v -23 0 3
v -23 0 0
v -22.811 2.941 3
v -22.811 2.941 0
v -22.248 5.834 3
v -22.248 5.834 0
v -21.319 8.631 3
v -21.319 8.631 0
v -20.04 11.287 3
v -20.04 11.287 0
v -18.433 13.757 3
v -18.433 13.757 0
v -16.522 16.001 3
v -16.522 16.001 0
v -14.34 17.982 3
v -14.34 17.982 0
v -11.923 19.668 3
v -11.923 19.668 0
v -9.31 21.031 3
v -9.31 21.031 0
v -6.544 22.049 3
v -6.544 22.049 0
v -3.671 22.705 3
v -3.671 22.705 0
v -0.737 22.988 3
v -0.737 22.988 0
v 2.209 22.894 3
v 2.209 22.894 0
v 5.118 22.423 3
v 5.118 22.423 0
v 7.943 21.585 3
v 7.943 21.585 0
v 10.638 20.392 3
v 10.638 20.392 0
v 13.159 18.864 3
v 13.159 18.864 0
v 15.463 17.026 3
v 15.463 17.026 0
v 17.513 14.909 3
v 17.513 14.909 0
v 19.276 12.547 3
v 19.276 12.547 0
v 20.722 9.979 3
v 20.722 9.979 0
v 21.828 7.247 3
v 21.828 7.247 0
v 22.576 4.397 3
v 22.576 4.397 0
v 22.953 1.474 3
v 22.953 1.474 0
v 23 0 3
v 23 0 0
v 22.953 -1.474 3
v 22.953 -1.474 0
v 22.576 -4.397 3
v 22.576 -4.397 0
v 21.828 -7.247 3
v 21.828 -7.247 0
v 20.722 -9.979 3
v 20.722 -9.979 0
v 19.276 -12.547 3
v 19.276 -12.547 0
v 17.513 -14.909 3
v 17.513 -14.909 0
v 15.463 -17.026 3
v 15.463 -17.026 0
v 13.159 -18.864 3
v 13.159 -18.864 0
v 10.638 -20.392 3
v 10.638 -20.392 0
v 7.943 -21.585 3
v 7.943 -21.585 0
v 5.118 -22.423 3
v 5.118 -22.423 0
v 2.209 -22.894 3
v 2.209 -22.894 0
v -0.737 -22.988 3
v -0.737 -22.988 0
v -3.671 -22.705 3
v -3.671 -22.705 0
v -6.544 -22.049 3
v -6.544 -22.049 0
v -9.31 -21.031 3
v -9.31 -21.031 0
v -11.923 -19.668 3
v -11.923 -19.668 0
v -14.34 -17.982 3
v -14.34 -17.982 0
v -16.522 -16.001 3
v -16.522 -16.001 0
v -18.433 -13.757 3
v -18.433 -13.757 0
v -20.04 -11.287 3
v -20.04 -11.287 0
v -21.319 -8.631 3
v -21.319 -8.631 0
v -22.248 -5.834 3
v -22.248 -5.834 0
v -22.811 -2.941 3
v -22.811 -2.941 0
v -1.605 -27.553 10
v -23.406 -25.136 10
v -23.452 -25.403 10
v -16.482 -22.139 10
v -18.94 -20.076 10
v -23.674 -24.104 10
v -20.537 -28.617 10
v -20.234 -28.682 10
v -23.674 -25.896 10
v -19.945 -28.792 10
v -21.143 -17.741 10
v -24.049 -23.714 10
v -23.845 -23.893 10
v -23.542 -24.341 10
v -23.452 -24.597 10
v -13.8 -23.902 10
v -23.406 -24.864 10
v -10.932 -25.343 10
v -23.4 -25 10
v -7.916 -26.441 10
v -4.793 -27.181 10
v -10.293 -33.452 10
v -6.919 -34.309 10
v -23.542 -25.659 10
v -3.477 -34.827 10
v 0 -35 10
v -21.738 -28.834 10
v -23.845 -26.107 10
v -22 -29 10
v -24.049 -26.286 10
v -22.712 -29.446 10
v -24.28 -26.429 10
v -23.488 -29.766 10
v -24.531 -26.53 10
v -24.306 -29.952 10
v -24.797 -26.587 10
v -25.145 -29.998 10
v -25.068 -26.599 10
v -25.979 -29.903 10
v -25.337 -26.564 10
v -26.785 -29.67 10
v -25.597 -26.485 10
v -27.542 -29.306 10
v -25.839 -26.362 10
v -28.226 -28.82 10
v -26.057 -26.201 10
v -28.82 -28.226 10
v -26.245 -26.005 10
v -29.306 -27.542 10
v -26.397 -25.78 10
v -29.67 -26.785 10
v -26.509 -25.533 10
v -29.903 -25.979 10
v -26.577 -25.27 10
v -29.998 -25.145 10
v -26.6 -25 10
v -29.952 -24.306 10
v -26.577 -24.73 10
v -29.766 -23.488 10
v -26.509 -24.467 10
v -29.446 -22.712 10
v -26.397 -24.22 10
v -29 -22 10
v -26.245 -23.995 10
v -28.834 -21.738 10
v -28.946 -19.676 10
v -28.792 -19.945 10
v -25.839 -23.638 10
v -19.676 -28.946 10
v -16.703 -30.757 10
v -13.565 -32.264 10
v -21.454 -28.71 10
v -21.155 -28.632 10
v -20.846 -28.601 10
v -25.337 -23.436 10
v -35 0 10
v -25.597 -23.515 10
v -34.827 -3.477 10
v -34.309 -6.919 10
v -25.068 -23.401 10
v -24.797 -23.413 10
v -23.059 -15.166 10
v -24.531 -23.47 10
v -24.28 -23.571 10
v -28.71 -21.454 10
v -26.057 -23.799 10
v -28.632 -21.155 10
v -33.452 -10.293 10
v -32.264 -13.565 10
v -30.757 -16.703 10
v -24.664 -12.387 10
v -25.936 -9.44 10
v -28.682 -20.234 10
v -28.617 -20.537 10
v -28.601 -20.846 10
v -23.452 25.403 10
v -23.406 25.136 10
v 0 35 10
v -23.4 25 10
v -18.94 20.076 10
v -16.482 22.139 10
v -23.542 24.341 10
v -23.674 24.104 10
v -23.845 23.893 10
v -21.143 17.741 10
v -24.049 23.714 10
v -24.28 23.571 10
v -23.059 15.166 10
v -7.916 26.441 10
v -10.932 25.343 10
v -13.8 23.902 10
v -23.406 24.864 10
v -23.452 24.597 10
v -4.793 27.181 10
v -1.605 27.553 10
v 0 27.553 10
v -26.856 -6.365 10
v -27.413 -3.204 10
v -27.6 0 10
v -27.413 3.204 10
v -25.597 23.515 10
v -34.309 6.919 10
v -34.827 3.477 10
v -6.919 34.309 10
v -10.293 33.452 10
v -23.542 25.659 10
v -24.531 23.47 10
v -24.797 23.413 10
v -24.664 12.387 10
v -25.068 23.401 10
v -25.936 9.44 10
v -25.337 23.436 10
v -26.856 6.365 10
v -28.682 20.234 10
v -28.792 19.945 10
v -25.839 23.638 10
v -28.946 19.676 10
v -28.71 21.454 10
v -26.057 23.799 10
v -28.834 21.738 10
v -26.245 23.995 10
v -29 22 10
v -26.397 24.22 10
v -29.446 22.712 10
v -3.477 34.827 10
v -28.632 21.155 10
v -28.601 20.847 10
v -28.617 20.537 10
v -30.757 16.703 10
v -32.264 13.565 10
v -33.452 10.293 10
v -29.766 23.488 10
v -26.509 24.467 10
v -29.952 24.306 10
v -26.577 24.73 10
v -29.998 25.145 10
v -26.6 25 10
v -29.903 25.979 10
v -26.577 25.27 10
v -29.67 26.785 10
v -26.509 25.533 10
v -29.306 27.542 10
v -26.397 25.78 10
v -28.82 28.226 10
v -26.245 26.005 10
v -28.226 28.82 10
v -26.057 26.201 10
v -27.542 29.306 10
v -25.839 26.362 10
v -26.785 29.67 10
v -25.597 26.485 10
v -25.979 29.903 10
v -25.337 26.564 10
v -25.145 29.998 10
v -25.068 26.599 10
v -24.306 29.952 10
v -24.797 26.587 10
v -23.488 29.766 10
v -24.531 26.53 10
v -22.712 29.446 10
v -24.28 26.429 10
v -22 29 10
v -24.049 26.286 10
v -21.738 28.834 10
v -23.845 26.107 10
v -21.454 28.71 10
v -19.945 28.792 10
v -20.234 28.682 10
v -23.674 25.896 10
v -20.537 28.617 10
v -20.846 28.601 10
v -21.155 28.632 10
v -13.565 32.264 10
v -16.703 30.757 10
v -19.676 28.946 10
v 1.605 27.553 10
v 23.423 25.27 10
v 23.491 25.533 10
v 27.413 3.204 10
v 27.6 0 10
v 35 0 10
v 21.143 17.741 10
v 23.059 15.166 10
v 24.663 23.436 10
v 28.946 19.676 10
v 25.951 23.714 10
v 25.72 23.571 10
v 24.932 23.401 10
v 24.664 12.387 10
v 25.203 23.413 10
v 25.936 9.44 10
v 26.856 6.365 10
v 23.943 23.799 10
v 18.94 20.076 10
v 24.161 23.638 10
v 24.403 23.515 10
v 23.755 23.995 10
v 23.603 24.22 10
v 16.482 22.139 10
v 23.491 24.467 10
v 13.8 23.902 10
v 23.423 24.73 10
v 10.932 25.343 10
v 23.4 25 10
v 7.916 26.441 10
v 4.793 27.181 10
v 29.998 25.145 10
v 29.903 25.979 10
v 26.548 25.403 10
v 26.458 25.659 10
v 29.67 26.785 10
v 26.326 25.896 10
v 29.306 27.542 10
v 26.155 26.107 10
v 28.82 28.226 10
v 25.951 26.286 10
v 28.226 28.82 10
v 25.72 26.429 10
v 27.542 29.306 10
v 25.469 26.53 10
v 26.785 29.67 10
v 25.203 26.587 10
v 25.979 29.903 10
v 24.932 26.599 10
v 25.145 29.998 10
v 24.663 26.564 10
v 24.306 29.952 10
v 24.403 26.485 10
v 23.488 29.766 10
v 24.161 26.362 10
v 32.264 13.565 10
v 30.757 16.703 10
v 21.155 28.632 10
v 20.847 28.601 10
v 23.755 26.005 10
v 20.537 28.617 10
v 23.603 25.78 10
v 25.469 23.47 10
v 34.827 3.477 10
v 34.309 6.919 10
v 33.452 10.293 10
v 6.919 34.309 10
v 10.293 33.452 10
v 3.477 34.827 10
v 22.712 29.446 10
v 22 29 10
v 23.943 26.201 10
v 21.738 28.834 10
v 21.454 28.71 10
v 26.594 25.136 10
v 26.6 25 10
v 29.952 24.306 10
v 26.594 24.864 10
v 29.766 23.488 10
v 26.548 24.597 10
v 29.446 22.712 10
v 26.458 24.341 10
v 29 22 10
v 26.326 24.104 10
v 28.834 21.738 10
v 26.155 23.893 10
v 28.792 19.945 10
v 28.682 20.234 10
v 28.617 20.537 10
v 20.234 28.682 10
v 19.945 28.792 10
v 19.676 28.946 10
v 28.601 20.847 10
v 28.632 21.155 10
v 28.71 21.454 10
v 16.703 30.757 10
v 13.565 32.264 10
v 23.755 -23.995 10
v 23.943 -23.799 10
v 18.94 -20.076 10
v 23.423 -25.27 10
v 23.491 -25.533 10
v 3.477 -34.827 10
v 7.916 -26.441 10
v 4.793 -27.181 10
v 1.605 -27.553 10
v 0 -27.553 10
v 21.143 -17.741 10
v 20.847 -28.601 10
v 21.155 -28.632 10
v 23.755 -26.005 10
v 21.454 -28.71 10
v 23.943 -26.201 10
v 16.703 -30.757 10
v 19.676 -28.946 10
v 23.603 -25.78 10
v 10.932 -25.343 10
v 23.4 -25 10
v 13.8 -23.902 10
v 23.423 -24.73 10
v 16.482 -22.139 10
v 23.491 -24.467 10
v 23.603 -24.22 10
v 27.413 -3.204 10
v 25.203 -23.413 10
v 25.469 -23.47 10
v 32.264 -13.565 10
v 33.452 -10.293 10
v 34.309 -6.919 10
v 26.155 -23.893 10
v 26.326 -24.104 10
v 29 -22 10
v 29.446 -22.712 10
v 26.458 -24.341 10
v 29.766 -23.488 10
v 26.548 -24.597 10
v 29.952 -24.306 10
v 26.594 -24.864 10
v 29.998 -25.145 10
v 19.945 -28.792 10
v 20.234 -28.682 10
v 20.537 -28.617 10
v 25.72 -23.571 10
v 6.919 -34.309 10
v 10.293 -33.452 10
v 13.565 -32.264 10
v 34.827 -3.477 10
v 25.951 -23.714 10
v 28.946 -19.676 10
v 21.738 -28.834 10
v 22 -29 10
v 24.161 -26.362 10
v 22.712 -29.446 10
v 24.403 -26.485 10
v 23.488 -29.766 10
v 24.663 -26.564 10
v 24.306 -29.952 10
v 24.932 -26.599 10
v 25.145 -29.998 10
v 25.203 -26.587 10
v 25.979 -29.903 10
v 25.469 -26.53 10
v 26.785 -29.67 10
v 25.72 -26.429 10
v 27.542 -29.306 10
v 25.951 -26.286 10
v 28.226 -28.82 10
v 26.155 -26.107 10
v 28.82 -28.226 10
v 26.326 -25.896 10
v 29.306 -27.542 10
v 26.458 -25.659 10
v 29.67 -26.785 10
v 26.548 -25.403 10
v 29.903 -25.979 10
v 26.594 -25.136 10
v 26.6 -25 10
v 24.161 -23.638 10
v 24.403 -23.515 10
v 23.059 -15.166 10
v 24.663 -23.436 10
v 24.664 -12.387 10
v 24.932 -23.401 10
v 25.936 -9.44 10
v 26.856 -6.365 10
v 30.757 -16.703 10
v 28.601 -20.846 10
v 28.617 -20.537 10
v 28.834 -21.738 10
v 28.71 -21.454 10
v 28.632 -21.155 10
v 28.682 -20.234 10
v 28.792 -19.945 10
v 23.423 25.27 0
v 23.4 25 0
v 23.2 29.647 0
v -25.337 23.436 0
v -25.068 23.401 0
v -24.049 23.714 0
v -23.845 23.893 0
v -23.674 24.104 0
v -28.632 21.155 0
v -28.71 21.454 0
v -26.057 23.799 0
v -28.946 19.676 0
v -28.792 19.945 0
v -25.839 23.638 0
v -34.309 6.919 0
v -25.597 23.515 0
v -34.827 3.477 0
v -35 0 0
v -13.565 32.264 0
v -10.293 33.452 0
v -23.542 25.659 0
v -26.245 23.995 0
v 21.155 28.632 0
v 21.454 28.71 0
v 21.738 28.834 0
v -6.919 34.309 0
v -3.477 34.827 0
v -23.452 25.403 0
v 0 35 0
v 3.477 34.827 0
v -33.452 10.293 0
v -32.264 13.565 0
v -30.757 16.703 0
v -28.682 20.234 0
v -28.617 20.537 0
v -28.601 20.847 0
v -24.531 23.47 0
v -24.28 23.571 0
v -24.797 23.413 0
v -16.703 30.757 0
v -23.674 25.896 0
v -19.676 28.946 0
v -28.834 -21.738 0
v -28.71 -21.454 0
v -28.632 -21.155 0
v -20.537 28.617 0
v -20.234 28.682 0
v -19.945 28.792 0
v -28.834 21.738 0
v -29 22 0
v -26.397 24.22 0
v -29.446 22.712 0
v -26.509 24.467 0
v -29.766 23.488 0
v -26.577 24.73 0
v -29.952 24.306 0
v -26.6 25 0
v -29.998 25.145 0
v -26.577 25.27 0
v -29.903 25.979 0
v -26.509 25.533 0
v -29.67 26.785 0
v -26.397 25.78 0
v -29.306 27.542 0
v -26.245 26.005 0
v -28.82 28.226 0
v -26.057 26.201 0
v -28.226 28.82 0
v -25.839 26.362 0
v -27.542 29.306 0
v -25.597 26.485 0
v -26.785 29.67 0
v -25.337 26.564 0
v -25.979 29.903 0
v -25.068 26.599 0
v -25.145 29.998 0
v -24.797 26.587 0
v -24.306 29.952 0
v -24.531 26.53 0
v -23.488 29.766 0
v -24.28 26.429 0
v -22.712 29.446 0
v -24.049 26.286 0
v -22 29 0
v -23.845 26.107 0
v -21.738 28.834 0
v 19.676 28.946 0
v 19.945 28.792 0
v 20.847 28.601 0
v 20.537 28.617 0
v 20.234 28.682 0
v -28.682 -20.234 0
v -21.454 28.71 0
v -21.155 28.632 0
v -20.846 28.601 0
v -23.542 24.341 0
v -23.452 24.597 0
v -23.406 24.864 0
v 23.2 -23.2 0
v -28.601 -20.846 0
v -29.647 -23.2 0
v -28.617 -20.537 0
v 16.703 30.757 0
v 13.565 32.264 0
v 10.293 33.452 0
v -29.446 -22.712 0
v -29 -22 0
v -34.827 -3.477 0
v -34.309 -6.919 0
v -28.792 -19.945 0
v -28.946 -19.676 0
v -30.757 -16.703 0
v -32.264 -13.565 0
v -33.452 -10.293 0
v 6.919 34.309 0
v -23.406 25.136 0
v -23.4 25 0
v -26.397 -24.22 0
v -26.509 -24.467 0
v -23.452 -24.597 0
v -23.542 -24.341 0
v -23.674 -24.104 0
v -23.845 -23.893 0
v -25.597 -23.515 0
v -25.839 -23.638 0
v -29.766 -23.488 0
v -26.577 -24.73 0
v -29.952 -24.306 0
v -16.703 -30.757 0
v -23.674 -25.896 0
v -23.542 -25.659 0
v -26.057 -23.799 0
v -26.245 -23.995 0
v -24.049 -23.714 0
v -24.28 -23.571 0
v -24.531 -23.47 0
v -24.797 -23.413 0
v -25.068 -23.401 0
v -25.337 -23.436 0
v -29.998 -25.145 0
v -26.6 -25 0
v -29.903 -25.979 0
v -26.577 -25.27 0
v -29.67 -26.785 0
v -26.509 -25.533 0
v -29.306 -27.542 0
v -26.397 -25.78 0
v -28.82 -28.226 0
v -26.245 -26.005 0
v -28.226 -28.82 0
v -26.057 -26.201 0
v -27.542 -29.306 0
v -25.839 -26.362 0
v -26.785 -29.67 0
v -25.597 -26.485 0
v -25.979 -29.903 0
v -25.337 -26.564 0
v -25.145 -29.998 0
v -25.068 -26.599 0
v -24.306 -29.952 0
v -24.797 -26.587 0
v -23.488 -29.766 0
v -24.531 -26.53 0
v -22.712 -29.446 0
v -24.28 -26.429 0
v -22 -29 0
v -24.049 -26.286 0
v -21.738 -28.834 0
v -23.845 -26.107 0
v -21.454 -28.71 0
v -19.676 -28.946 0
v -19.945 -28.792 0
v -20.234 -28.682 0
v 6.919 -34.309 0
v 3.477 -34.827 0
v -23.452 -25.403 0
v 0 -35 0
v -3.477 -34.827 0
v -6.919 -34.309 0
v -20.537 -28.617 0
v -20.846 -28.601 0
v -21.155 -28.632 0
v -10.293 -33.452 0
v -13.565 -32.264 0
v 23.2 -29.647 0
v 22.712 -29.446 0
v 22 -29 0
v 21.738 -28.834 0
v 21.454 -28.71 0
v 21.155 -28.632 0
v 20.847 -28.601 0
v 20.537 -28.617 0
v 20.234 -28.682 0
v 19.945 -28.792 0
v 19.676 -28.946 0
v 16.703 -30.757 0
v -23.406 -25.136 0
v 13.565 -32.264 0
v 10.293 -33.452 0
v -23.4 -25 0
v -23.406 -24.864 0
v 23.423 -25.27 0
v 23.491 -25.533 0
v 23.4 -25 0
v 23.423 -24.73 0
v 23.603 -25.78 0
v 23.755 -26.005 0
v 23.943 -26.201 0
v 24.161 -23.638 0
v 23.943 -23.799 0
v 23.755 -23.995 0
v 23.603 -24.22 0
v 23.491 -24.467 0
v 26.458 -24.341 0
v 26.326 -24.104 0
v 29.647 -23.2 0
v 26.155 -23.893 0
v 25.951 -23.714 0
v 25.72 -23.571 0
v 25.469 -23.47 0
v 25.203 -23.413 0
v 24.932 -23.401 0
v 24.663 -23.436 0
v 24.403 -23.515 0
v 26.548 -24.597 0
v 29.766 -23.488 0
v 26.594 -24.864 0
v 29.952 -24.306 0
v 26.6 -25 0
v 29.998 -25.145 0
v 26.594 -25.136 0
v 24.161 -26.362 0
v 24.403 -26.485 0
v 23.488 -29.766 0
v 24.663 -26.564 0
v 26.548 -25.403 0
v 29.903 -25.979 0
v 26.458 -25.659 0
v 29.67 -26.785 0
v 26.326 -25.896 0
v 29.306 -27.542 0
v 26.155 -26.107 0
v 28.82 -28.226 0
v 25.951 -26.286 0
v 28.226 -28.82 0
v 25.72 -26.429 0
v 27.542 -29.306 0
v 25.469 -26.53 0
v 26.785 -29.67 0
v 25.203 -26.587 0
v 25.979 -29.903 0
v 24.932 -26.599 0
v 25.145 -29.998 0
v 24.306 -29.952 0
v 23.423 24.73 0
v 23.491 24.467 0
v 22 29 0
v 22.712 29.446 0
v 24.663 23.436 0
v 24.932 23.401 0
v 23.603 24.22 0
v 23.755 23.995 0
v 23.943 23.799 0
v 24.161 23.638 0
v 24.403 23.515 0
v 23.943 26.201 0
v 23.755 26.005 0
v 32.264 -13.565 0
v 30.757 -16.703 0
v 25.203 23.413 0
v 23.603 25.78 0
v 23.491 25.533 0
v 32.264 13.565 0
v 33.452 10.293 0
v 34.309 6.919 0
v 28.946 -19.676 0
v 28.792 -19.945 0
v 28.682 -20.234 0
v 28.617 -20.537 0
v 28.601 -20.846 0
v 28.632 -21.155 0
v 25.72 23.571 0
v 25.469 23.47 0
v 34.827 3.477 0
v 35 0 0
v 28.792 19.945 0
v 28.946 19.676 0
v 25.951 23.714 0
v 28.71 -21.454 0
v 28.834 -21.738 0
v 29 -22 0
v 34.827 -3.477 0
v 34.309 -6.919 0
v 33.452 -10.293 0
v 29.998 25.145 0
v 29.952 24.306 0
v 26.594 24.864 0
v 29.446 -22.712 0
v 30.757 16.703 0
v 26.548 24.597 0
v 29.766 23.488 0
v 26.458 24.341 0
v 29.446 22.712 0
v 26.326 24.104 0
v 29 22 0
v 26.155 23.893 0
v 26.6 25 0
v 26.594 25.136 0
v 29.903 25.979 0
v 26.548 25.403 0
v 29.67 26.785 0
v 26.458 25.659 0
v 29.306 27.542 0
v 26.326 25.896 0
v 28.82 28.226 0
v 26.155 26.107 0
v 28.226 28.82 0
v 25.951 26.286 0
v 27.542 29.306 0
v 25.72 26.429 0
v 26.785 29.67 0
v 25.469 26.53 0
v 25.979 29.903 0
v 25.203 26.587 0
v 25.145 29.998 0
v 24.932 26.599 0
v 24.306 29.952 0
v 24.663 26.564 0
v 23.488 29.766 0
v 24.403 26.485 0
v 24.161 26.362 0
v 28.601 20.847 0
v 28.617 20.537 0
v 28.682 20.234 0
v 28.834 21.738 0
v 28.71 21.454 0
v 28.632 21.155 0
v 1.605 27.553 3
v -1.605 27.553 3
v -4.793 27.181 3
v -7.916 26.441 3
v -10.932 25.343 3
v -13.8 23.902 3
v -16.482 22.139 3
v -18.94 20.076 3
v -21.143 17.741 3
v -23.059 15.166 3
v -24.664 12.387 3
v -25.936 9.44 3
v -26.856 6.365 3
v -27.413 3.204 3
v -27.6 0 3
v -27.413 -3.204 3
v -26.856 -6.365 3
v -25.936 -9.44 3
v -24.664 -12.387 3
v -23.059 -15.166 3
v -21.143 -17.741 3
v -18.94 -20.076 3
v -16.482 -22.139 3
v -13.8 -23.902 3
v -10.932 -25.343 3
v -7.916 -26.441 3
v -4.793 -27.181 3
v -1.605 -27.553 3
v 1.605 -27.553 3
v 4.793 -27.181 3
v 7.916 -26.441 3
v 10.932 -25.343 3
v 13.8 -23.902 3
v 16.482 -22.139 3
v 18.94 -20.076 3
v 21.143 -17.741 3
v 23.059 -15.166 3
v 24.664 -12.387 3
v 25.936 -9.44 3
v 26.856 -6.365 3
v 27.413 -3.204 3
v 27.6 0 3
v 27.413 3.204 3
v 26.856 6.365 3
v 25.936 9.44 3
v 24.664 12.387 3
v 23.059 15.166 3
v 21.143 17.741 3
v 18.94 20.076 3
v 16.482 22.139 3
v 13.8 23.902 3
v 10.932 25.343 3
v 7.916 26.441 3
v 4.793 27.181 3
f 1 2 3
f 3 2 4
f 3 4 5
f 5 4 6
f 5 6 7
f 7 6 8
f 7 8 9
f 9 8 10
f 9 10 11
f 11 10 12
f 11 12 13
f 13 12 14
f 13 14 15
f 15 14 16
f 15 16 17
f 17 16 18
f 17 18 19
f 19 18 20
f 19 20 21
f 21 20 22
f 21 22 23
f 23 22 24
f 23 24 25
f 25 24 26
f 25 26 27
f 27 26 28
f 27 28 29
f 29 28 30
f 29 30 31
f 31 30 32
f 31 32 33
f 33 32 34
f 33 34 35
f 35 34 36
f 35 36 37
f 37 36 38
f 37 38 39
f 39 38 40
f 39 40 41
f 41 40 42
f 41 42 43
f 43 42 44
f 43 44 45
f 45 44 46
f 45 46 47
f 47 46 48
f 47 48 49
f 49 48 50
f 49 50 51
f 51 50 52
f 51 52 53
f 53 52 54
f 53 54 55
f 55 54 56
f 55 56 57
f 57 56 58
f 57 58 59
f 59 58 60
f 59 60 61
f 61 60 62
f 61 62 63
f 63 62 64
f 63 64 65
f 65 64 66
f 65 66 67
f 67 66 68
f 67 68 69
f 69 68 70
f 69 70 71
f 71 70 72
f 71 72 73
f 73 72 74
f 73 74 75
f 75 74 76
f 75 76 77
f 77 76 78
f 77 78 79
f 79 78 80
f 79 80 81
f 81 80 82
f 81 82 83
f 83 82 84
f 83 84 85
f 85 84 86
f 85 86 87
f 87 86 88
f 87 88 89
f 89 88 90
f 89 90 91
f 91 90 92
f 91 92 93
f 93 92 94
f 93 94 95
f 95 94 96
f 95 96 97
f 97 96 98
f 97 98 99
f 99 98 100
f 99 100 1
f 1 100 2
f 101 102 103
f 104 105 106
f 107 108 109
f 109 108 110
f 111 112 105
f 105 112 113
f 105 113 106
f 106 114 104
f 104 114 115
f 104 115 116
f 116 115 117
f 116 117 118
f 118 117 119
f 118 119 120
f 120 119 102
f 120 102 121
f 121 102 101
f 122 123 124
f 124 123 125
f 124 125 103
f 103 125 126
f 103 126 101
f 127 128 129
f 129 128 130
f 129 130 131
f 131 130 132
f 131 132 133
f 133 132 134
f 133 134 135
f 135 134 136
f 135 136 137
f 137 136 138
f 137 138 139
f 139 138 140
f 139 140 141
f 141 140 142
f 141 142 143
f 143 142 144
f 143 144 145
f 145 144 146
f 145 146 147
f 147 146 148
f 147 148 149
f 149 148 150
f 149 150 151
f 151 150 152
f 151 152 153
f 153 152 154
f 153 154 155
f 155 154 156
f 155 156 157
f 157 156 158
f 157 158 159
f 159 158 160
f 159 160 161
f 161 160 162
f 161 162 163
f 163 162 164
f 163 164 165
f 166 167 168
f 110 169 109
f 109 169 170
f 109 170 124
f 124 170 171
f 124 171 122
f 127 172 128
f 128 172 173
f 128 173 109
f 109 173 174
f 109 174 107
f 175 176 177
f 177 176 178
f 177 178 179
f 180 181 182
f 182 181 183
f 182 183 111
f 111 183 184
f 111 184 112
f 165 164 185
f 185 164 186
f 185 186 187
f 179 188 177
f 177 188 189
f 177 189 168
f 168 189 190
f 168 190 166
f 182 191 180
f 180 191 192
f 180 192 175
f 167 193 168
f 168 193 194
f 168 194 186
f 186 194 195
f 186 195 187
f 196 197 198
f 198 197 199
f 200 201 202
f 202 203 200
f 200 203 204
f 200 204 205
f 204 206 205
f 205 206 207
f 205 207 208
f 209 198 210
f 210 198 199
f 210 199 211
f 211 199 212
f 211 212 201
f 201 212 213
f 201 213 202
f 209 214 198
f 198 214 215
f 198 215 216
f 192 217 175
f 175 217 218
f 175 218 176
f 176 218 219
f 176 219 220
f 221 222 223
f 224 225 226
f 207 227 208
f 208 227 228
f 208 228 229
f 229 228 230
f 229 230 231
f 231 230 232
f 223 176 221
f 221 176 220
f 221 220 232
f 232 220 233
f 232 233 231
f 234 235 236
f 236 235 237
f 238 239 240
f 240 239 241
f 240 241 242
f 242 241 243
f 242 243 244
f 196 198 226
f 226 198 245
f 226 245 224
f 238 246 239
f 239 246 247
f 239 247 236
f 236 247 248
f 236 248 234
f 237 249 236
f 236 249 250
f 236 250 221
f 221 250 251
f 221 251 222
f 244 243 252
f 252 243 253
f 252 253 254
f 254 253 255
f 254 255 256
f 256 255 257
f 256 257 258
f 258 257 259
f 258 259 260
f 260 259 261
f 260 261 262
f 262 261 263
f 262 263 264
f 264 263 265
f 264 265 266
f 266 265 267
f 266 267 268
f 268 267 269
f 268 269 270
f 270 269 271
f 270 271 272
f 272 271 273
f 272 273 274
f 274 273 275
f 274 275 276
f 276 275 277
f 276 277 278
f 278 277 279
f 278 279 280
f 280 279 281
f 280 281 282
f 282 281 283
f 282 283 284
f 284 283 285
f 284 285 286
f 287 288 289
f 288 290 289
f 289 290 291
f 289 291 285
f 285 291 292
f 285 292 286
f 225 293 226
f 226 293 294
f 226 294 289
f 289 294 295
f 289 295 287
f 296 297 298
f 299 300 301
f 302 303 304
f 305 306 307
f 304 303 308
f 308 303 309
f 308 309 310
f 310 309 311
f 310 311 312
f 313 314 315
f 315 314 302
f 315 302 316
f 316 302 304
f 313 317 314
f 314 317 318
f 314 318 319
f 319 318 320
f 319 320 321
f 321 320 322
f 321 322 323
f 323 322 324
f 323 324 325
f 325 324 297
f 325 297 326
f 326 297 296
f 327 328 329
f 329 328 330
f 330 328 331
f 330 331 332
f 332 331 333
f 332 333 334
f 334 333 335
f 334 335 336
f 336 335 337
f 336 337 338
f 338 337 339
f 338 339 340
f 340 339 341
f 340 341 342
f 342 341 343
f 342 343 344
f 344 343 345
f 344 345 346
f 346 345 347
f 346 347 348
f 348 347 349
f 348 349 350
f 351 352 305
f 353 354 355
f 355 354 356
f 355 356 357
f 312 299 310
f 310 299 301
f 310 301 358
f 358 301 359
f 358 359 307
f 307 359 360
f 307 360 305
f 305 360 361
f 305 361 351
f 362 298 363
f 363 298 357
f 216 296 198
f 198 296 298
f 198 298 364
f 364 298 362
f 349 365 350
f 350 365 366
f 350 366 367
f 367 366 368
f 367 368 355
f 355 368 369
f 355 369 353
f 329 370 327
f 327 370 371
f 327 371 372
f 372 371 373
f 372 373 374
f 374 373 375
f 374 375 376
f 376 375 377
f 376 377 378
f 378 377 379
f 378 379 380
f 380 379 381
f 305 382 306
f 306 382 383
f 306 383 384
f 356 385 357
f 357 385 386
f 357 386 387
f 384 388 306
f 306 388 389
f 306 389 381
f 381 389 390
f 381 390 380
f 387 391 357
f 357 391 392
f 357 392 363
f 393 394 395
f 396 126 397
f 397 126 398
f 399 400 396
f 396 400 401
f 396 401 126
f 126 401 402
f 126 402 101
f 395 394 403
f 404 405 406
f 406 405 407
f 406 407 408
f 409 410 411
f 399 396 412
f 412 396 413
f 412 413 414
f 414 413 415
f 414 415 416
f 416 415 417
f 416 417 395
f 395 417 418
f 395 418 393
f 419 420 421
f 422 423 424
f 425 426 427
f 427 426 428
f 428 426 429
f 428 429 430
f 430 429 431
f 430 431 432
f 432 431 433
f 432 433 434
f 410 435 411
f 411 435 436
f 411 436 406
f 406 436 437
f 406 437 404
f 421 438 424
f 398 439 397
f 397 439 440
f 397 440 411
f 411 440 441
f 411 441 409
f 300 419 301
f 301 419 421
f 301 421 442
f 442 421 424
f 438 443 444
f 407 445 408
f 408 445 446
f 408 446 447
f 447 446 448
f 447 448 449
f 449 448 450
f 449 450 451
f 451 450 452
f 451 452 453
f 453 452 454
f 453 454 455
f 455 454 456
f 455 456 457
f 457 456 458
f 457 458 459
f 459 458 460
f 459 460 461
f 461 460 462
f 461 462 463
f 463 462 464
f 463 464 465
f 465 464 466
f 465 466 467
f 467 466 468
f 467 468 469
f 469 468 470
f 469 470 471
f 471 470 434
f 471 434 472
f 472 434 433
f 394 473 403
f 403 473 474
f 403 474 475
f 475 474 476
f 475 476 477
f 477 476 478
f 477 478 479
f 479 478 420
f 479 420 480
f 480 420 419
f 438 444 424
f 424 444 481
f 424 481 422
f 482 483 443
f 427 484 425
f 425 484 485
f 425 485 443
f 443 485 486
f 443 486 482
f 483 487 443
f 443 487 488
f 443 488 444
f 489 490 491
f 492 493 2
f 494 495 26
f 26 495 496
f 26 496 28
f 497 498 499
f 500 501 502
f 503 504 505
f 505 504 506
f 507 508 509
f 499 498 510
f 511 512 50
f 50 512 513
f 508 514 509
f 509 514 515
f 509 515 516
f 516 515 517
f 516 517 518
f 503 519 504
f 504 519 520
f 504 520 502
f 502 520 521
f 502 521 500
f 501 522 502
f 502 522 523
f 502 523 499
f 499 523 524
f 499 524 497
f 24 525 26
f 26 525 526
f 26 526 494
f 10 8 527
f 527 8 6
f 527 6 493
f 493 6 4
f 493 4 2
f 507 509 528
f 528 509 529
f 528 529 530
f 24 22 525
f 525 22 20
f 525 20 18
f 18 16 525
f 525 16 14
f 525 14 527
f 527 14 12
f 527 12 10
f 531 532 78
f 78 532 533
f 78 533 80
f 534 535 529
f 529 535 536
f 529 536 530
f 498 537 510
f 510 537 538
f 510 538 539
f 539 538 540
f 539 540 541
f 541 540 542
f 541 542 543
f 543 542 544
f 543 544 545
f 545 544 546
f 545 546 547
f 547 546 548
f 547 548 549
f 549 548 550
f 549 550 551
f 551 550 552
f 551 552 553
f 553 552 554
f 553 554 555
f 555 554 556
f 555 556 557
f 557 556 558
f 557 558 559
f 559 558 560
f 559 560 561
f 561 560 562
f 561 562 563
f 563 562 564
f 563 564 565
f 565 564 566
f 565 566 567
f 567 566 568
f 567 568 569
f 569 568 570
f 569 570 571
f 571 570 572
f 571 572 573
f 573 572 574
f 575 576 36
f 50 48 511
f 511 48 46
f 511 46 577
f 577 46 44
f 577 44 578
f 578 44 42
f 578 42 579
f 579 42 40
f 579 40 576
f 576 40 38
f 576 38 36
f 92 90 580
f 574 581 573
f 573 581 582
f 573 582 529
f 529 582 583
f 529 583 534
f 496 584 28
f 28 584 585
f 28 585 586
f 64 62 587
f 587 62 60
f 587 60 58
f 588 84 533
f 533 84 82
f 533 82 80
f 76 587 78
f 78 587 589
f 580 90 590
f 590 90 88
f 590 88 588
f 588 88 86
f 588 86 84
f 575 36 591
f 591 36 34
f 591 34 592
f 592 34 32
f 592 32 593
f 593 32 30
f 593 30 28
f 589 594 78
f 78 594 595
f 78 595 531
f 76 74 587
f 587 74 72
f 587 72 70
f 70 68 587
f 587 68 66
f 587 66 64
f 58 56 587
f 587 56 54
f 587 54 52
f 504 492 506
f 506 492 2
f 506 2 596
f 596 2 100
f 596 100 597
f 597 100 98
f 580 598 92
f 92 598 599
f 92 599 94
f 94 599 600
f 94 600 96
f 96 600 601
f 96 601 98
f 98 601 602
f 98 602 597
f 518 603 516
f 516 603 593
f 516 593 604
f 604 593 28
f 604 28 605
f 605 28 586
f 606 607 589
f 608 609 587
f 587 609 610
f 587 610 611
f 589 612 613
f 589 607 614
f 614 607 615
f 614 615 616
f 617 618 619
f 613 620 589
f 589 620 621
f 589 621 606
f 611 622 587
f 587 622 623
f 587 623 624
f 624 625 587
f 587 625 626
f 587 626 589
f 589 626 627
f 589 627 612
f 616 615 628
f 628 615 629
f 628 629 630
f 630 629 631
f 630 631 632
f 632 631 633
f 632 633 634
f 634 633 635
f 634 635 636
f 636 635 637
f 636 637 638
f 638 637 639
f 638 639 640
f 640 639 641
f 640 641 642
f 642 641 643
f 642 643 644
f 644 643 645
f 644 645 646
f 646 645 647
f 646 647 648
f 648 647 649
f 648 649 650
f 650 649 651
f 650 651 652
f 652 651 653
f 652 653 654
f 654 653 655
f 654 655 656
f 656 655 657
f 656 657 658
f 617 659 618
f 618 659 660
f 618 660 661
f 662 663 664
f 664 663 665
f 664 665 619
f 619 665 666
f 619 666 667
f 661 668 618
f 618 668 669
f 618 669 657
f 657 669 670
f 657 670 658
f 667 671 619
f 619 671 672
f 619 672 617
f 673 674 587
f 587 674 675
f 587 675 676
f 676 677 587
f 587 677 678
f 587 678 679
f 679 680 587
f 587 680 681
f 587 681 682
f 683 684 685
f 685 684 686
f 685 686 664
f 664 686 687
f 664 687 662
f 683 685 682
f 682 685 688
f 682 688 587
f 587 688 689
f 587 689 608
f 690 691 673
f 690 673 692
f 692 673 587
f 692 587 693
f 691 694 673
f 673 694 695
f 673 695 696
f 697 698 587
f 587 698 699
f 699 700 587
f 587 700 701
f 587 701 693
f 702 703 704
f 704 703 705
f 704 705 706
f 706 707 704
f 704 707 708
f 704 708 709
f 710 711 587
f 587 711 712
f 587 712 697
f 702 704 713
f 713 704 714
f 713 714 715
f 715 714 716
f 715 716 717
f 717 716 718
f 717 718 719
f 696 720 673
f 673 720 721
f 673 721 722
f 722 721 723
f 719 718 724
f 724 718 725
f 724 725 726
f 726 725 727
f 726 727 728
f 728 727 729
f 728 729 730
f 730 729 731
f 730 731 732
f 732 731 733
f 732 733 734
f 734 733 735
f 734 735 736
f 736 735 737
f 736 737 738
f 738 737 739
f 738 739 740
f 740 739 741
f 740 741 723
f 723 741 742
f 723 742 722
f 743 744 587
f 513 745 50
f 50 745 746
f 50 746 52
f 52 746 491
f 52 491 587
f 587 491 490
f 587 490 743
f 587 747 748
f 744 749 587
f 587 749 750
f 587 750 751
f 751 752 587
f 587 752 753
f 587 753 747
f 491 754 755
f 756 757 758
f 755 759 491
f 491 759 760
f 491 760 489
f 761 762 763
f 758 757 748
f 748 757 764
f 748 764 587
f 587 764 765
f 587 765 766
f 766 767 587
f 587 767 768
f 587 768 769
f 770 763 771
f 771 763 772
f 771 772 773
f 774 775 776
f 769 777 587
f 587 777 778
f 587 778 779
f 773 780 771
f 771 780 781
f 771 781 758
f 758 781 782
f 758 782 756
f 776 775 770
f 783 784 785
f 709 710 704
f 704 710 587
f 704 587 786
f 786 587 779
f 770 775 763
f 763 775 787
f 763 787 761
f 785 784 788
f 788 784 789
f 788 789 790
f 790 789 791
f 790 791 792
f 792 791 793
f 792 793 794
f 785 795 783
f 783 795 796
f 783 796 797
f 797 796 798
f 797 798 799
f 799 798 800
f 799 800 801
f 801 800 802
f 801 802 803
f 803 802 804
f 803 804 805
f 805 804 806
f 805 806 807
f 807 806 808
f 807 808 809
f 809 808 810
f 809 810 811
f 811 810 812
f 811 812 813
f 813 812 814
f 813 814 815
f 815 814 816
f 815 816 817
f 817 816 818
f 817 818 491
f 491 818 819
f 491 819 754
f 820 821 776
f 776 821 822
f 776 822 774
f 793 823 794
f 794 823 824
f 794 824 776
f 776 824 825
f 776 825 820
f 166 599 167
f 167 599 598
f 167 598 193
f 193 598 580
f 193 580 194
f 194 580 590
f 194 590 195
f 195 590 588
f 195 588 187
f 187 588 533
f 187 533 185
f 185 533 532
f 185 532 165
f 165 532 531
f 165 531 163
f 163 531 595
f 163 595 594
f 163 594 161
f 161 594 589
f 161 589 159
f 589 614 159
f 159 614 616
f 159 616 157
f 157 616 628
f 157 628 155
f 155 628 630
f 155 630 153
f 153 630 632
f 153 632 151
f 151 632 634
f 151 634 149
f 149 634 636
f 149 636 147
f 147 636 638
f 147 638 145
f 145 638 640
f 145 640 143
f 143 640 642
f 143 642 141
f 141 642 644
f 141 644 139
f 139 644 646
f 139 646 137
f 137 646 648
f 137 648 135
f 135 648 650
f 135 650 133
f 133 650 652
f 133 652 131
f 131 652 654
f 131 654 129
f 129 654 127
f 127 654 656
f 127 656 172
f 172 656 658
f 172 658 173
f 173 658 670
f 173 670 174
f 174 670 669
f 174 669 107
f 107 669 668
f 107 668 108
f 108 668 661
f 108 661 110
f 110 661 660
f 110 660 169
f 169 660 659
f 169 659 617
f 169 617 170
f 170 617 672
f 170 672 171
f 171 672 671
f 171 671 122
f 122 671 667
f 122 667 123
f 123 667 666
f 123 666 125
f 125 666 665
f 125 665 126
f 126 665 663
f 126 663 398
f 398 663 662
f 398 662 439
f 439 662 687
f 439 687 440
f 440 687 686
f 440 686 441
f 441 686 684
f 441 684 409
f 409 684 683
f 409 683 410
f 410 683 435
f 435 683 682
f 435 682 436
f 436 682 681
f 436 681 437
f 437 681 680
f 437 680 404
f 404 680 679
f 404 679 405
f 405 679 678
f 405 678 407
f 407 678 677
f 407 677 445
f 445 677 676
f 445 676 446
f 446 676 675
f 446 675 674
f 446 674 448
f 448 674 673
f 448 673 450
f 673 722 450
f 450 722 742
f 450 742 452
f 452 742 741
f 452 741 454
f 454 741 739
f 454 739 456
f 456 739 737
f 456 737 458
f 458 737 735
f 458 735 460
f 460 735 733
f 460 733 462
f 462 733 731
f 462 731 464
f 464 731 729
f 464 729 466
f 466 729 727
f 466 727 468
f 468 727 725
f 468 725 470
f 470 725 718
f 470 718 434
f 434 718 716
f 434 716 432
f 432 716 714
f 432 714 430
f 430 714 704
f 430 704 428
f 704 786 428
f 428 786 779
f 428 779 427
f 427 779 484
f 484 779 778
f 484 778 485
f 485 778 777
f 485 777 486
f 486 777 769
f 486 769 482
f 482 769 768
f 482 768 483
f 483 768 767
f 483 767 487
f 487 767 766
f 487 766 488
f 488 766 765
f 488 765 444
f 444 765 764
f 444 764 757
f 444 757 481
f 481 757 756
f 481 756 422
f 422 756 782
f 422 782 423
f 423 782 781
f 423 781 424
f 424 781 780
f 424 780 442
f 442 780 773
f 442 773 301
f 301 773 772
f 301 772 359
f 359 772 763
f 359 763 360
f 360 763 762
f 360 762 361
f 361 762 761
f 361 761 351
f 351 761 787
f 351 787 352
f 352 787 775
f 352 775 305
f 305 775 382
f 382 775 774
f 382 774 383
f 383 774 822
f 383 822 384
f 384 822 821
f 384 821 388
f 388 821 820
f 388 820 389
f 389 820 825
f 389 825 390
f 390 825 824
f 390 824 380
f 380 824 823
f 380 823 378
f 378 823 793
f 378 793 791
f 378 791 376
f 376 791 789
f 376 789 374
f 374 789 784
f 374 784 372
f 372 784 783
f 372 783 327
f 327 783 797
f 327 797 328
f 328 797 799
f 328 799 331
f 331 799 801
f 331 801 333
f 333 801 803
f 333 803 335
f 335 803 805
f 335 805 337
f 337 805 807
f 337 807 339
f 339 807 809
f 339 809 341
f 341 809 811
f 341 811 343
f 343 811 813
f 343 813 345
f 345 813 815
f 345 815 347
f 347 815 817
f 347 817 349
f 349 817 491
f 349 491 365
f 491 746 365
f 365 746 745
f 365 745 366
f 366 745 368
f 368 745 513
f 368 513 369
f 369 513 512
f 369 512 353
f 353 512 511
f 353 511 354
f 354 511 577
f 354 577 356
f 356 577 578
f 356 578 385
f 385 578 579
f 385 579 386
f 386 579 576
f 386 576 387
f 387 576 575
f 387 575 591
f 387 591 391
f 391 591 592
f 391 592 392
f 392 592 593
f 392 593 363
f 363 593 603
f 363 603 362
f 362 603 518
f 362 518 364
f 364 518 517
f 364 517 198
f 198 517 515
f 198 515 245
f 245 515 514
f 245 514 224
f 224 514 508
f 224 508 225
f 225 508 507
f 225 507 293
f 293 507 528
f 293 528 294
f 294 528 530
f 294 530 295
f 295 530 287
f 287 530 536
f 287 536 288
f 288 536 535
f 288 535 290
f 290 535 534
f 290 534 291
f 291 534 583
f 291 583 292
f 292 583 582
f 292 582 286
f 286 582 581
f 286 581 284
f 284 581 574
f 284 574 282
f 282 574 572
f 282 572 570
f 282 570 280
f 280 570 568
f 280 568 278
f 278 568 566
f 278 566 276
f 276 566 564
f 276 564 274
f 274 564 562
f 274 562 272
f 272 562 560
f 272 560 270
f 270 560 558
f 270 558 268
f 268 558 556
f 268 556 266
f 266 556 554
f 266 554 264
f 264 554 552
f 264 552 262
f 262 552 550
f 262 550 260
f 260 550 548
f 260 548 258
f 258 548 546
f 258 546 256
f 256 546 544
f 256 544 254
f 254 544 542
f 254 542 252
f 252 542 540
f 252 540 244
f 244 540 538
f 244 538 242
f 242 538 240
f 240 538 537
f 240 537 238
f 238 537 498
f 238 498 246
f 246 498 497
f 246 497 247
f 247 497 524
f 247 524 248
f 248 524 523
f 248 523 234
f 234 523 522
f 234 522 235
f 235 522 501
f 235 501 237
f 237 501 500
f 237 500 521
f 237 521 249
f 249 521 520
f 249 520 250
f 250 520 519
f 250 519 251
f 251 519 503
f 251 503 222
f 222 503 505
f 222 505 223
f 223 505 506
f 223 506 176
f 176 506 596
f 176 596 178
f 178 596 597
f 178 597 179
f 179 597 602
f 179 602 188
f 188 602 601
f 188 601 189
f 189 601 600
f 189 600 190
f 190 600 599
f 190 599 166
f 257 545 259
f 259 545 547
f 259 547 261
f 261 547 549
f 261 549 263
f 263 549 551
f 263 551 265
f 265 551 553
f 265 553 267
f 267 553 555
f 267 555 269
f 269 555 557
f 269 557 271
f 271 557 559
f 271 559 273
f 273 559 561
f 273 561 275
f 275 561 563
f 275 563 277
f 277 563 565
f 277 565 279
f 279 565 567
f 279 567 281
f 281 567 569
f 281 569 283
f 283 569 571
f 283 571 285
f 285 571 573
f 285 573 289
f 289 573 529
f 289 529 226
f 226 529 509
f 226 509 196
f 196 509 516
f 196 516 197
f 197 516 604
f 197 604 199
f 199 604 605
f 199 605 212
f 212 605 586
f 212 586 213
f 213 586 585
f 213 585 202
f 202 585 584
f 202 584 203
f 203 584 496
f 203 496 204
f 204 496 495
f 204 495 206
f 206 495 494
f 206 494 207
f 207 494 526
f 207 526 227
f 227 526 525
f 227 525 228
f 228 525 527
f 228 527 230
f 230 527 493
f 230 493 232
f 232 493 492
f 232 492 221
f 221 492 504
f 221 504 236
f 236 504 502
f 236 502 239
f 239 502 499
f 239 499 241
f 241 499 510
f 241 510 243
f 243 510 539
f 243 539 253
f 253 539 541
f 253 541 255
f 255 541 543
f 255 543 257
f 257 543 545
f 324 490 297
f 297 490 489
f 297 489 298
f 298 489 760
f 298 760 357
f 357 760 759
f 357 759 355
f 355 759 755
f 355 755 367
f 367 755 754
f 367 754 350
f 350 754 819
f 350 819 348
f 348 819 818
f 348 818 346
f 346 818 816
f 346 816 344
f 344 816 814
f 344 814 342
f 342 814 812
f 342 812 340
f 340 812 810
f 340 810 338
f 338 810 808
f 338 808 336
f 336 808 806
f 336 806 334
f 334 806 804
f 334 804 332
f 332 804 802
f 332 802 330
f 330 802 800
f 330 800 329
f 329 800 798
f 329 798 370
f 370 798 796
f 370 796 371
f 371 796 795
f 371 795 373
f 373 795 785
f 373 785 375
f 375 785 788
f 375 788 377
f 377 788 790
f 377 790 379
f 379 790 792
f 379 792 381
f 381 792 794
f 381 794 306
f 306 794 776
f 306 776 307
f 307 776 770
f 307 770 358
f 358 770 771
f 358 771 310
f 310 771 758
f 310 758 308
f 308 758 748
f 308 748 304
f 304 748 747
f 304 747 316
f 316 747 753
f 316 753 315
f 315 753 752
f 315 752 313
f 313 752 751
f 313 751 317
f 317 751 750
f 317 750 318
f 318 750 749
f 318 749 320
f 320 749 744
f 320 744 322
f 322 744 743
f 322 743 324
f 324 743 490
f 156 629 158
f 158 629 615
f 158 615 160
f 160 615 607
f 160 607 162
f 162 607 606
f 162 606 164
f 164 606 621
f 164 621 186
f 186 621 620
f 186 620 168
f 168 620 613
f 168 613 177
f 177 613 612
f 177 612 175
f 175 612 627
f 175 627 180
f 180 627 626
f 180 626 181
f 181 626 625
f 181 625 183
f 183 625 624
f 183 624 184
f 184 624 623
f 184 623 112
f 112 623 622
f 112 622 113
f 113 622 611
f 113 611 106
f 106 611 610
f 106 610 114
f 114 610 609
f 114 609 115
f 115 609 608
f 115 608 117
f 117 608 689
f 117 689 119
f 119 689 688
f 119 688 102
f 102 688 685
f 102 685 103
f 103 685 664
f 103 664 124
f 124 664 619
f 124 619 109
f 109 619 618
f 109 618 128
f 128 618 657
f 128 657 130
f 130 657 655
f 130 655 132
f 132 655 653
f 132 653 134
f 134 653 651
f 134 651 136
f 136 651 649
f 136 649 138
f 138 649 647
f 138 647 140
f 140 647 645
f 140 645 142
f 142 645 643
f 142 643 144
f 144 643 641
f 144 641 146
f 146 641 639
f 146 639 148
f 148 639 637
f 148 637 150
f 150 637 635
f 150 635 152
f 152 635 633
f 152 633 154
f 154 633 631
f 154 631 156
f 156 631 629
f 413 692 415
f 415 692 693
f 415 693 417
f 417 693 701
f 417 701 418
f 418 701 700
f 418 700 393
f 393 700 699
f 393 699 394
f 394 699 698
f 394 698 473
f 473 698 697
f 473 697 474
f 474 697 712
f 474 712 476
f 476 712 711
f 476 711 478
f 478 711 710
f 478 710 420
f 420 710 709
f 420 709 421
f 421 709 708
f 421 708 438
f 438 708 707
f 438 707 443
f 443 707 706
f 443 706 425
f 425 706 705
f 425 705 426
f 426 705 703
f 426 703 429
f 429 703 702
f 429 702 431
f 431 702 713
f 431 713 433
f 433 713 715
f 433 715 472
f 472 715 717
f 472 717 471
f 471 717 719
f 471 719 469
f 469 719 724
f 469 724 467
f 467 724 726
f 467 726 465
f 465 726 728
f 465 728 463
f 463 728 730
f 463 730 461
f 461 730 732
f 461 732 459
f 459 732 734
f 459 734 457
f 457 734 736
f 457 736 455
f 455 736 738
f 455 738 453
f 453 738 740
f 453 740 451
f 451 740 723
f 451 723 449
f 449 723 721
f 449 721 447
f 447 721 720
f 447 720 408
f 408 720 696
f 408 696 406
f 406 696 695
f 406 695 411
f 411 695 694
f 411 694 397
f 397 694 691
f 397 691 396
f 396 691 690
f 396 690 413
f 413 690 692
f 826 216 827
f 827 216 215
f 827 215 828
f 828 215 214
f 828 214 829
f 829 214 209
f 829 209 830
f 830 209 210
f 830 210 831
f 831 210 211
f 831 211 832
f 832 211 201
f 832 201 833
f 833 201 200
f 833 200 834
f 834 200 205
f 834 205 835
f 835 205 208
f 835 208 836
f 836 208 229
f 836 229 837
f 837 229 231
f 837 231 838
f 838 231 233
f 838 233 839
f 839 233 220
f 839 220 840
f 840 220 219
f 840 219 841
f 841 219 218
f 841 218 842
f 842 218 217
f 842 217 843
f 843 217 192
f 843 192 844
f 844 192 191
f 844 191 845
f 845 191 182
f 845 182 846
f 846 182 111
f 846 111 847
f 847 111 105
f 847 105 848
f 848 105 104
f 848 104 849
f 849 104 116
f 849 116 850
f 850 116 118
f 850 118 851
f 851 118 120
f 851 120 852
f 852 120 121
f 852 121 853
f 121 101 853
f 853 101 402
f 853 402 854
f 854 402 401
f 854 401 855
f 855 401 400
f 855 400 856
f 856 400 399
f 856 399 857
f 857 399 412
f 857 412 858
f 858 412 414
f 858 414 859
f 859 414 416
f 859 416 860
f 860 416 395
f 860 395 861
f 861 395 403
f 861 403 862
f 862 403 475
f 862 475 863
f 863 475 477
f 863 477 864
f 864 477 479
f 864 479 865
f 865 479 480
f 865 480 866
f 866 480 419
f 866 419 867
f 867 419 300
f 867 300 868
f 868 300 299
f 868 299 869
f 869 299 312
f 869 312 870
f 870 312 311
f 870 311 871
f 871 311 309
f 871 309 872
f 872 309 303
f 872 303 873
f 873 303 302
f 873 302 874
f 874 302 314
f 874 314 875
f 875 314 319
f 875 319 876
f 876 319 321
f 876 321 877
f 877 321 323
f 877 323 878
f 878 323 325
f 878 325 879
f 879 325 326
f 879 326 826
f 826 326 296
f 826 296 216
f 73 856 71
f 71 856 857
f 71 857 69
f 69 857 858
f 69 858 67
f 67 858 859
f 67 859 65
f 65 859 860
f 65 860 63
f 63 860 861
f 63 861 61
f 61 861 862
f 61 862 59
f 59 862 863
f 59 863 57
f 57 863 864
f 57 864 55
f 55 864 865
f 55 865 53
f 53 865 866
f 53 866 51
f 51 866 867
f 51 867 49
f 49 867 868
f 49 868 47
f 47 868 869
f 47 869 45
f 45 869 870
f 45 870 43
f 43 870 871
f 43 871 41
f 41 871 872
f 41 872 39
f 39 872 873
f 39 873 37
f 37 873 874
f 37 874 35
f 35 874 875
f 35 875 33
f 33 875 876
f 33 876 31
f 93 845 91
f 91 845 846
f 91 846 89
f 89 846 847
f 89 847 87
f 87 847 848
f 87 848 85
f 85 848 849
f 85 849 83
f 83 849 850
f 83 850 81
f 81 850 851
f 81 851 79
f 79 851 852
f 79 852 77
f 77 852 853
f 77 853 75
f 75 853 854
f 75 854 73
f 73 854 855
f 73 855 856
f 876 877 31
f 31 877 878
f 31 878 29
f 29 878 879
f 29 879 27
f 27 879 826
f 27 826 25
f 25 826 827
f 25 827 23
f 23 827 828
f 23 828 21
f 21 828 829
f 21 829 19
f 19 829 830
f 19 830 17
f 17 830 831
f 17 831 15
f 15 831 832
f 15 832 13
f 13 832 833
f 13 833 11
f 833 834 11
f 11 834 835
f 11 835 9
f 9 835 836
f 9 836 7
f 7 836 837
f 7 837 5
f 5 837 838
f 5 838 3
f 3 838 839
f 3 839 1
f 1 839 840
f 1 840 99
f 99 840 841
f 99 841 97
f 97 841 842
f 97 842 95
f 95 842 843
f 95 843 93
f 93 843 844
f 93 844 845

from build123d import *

# Parameters (mm, degrees)
SKETCH1_R           = 23
SKETCH1_R_2         = 1.6
BOSS_EXTRUDE1_DEPTH = 10
SKETCH2_R           = 27.6
CUT_EXTRUDE1_DEPTH  = 7


with BuildPart() as part:
    # Sketch1 → Boss-Extrude1 (new body)
    with BuildSketch(Plane.XY):
        with BuildLine():
            ThreePointArc((-28.945945946, 19.675675676), (-35, 0), (-28.945945946, -19.675675676))
            ThreePointArc((-28.945945946, -19.675675676), (-28.600540614, -20.846499055), (-29, -22))
            ThreePointArc((-29, -22), (-28.535533906, -28.535533906), (-22, -29))
            ThreePointArc((-22, -29), (-20.846499055, -28.600540614), (-19.675675676, -28.945945946))
            ThreePointArc((-19.675675676, -28.945945946), (0, -35), (19.675675676, -28.945945946))
            ThreePointArc((19.675675676, -28.945945946), (20.846499055, -28.600540614), (22, -29))
            ThreePointArc((22, -29), (28.535533906, -28.535533906), (29, -22))
            ThreePointArc((29, -22), (28.600540614, -20.846499055), (28.945945946, -19.675675676))
            ThreePointArc((28.945945946, -19.675675676), (35, 0), (28.945945946, 19.675675676))
            ThreePointArc((28.945945946, 19.675675676), (28.600540614, 20.846499055), (29, 22))
            ThreePointArc((29, 22), (28.535533906, 28.535533906), (22, 29))
            ThreePointArc((22, 29), (20.846499055, 28.600540614), (19.675675676, 28.945945946))
            ThreePointArc((19.675675676, 28.945945946), (0, 35), (-19.675675676, 28.945945946))
            ThreePointArc((-19.675675676, 28.945945946), (-20.846499055, 28.600540614), (-22, 29))
            ThreePointArc((-22, 29), (-28.535533906, 28.535533906), (-29, 22))
            ThreePointArc((-29, 22), (-28.600540614, 20.846499055), (-28.945945946, 19.675675676))
        make_face()
        Circle(SKETCH1_R, mode=Mode.SUBTRACT)
        with Locations((-25, 25)):
            Circle(SKETCH1_R_2, mode=Mode.SUBTRACT)
        with Locations((25, 25)):
            Circle(SKETCH1_R_2, mode=Mode.SUBTRACT)
        with Locations((-25, -25)):
            Circle(SKETCH1_R_2, mode=Mode.SUBTRACT)
        with Locations((25, -25)):
            Circle(SKETCH1_R_2, mode=Mode.SUBTRACT)
    extrude(amount=BOSS_EXTRUDE1_DEPTH)

    # Sketch2 → Cut-Extrude1 (cut)
    with BuildSketch(Plane.XY.offset(10)):
        Circle(SKETCH2_R)
    extrude(amount=-CUT_EXTRUDE1_DEPTH, mode=Mode.SUBTRACT)


solid = part.part
